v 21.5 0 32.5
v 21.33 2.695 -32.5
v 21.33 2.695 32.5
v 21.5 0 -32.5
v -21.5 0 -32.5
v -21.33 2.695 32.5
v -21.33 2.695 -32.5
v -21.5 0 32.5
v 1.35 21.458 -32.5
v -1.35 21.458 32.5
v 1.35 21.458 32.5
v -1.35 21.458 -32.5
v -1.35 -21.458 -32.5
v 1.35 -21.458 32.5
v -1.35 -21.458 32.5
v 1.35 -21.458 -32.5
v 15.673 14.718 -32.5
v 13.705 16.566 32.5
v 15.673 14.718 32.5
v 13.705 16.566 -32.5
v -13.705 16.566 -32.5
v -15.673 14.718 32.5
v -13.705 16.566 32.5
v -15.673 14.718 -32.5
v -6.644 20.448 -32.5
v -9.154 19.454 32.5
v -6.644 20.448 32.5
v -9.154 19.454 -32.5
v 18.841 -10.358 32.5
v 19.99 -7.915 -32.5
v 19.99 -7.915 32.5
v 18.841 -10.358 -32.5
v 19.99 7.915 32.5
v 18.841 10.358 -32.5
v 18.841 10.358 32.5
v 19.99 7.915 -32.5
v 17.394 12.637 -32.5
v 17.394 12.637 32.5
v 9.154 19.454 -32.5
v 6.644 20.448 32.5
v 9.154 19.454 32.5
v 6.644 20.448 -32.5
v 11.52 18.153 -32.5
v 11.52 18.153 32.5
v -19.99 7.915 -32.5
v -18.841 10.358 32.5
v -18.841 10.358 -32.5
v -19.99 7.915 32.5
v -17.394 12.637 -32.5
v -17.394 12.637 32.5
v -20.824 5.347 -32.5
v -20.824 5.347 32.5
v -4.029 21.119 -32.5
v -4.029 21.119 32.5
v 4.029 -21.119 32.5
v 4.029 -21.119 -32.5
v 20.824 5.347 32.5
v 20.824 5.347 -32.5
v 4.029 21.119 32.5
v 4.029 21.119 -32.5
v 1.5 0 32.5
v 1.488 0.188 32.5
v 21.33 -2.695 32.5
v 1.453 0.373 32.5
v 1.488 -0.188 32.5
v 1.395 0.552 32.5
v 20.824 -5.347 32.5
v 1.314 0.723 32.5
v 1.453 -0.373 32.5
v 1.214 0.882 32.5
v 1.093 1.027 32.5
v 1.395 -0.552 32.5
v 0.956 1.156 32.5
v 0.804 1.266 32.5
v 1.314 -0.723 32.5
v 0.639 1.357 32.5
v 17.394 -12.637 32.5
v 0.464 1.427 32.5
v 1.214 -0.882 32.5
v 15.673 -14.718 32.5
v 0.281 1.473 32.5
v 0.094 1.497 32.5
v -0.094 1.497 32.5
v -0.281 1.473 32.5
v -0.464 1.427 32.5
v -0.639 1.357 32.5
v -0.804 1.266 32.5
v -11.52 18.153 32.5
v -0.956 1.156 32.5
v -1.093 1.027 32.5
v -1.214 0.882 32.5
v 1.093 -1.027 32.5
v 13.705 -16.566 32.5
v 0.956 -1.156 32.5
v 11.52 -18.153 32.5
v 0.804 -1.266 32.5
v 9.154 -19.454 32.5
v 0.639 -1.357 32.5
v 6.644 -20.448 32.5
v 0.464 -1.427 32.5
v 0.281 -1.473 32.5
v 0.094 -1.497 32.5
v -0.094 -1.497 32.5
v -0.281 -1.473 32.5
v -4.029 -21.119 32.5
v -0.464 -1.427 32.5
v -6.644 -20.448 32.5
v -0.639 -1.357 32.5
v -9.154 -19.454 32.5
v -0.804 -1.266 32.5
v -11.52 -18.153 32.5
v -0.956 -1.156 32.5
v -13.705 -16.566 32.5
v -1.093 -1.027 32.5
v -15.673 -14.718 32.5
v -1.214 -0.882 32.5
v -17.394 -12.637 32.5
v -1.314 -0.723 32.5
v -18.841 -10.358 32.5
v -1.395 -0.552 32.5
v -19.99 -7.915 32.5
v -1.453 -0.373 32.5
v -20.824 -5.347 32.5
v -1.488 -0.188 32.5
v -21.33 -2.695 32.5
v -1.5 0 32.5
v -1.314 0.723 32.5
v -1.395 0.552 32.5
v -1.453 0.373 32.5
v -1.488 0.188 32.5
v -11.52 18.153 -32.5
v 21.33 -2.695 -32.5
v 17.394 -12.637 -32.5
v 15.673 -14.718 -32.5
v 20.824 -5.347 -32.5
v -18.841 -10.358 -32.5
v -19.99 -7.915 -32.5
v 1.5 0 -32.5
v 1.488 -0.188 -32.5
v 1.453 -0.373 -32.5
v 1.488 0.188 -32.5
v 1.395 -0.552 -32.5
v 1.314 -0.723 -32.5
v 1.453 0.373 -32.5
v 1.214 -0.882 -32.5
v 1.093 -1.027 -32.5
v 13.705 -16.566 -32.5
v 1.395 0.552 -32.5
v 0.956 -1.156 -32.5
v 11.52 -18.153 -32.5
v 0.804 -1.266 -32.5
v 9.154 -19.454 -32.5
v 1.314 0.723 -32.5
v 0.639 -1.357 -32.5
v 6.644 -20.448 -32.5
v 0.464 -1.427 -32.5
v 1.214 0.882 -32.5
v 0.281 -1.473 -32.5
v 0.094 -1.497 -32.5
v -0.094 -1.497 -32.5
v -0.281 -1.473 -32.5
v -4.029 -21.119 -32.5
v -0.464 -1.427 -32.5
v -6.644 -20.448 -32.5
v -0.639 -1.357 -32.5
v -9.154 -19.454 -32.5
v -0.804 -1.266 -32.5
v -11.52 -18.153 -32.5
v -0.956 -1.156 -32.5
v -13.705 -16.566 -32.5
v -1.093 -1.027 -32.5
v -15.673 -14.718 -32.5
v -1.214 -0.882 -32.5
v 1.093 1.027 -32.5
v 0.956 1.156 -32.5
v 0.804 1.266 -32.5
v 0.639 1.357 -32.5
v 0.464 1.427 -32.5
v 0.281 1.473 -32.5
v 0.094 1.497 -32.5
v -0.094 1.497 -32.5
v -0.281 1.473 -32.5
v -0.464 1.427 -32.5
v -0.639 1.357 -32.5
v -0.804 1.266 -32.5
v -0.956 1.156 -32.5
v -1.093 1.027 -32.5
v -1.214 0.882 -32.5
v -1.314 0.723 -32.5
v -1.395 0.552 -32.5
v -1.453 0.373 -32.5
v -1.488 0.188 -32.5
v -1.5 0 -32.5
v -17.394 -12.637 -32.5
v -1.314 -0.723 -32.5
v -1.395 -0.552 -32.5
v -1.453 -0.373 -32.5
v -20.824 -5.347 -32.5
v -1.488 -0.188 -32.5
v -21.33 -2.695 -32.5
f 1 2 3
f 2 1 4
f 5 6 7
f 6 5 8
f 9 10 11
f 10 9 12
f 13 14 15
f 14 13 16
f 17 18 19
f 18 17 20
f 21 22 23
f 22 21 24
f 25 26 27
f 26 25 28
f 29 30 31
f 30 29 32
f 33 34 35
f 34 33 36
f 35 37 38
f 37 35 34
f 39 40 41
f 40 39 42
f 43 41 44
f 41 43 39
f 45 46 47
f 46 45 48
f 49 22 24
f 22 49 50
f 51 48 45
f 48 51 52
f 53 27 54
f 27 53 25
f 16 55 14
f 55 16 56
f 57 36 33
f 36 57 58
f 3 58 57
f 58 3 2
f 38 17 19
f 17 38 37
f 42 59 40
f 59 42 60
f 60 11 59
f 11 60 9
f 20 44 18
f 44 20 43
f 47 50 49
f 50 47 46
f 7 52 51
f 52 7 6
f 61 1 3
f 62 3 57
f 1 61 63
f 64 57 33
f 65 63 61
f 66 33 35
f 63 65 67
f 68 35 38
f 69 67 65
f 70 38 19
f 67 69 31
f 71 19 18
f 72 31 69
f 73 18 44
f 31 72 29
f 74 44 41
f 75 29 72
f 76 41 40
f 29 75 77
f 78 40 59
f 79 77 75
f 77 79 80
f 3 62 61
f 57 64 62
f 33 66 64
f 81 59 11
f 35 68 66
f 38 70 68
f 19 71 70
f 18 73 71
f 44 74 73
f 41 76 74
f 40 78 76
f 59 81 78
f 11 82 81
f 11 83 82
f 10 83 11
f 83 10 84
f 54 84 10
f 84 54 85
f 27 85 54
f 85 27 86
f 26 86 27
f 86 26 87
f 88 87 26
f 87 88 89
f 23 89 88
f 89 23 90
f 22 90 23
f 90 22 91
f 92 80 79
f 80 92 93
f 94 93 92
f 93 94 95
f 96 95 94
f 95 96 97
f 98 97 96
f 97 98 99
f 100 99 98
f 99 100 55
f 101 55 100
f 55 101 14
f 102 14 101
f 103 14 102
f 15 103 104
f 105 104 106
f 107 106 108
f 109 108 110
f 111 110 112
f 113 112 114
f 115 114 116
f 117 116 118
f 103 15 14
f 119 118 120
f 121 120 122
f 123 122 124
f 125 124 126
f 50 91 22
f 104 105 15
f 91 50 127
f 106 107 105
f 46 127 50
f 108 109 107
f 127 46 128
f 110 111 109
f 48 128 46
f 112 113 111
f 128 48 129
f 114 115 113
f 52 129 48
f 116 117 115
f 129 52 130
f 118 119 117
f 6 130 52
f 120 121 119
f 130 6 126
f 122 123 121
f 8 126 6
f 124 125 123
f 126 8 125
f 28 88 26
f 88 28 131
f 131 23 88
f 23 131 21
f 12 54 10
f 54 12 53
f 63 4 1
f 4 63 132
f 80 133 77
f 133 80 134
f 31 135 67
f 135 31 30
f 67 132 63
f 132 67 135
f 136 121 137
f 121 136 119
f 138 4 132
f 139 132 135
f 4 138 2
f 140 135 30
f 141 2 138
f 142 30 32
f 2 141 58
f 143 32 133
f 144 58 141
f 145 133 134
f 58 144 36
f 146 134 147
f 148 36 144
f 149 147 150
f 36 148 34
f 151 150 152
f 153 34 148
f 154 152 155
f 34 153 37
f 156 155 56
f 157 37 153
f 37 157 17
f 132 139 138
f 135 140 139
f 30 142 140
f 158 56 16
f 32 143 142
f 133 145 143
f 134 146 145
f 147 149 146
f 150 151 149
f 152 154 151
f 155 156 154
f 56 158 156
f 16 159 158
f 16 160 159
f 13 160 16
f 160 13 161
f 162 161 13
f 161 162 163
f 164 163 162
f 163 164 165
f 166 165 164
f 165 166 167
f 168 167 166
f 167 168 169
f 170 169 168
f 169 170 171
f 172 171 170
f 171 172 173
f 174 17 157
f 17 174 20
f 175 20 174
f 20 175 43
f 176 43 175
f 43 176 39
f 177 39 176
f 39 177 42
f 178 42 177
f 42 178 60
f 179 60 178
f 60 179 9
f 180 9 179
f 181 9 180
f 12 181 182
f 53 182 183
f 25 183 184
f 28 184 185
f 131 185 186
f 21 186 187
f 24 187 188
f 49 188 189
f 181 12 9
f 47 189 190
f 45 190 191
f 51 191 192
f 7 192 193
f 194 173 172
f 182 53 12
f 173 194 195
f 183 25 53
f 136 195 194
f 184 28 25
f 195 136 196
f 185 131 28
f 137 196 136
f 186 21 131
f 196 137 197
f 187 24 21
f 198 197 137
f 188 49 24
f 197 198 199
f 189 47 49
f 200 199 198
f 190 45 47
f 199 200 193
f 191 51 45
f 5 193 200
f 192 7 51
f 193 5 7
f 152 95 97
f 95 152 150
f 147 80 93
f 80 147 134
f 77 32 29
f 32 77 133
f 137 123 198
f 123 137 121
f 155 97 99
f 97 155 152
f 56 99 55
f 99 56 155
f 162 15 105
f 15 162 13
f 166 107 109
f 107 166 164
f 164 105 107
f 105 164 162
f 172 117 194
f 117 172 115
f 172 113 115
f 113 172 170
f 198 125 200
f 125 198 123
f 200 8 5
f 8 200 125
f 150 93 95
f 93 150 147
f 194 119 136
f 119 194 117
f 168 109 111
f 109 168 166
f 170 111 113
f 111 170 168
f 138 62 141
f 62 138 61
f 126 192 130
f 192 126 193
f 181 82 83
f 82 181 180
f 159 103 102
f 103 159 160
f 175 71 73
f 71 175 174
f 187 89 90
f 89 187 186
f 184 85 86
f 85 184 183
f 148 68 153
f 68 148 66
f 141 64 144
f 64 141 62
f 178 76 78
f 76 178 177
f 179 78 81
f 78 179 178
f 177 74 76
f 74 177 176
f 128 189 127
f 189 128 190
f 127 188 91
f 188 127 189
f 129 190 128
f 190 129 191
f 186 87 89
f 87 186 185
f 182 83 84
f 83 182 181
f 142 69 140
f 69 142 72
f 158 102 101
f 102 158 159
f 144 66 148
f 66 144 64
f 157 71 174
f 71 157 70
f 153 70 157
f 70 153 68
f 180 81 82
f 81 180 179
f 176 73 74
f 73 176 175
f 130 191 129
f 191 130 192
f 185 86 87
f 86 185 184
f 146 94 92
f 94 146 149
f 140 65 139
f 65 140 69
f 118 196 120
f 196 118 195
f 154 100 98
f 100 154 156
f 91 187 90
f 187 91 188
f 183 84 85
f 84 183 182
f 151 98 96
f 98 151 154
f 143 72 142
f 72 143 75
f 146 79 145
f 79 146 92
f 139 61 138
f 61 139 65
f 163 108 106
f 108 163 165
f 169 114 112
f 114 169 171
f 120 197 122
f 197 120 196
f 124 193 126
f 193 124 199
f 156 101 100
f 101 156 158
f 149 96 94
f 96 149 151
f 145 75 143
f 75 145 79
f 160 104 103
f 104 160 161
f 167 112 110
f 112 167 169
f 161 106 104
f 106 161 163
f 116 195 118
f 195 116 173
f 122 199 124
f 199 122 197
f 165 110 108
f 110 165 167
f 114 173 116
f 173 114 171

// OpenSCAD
$fn = 50;


difference() {
	union() {
		translate(v = [0, 0, -32.5000000000]) {
			cylinder(h = 65, r = 21.5000000000);
		}
	}
	union() {
		translate(v = [0, 0, -100.0000000000]) {
			cylinder(h = 200, r = 1.5000000000);
		}
	}
}
